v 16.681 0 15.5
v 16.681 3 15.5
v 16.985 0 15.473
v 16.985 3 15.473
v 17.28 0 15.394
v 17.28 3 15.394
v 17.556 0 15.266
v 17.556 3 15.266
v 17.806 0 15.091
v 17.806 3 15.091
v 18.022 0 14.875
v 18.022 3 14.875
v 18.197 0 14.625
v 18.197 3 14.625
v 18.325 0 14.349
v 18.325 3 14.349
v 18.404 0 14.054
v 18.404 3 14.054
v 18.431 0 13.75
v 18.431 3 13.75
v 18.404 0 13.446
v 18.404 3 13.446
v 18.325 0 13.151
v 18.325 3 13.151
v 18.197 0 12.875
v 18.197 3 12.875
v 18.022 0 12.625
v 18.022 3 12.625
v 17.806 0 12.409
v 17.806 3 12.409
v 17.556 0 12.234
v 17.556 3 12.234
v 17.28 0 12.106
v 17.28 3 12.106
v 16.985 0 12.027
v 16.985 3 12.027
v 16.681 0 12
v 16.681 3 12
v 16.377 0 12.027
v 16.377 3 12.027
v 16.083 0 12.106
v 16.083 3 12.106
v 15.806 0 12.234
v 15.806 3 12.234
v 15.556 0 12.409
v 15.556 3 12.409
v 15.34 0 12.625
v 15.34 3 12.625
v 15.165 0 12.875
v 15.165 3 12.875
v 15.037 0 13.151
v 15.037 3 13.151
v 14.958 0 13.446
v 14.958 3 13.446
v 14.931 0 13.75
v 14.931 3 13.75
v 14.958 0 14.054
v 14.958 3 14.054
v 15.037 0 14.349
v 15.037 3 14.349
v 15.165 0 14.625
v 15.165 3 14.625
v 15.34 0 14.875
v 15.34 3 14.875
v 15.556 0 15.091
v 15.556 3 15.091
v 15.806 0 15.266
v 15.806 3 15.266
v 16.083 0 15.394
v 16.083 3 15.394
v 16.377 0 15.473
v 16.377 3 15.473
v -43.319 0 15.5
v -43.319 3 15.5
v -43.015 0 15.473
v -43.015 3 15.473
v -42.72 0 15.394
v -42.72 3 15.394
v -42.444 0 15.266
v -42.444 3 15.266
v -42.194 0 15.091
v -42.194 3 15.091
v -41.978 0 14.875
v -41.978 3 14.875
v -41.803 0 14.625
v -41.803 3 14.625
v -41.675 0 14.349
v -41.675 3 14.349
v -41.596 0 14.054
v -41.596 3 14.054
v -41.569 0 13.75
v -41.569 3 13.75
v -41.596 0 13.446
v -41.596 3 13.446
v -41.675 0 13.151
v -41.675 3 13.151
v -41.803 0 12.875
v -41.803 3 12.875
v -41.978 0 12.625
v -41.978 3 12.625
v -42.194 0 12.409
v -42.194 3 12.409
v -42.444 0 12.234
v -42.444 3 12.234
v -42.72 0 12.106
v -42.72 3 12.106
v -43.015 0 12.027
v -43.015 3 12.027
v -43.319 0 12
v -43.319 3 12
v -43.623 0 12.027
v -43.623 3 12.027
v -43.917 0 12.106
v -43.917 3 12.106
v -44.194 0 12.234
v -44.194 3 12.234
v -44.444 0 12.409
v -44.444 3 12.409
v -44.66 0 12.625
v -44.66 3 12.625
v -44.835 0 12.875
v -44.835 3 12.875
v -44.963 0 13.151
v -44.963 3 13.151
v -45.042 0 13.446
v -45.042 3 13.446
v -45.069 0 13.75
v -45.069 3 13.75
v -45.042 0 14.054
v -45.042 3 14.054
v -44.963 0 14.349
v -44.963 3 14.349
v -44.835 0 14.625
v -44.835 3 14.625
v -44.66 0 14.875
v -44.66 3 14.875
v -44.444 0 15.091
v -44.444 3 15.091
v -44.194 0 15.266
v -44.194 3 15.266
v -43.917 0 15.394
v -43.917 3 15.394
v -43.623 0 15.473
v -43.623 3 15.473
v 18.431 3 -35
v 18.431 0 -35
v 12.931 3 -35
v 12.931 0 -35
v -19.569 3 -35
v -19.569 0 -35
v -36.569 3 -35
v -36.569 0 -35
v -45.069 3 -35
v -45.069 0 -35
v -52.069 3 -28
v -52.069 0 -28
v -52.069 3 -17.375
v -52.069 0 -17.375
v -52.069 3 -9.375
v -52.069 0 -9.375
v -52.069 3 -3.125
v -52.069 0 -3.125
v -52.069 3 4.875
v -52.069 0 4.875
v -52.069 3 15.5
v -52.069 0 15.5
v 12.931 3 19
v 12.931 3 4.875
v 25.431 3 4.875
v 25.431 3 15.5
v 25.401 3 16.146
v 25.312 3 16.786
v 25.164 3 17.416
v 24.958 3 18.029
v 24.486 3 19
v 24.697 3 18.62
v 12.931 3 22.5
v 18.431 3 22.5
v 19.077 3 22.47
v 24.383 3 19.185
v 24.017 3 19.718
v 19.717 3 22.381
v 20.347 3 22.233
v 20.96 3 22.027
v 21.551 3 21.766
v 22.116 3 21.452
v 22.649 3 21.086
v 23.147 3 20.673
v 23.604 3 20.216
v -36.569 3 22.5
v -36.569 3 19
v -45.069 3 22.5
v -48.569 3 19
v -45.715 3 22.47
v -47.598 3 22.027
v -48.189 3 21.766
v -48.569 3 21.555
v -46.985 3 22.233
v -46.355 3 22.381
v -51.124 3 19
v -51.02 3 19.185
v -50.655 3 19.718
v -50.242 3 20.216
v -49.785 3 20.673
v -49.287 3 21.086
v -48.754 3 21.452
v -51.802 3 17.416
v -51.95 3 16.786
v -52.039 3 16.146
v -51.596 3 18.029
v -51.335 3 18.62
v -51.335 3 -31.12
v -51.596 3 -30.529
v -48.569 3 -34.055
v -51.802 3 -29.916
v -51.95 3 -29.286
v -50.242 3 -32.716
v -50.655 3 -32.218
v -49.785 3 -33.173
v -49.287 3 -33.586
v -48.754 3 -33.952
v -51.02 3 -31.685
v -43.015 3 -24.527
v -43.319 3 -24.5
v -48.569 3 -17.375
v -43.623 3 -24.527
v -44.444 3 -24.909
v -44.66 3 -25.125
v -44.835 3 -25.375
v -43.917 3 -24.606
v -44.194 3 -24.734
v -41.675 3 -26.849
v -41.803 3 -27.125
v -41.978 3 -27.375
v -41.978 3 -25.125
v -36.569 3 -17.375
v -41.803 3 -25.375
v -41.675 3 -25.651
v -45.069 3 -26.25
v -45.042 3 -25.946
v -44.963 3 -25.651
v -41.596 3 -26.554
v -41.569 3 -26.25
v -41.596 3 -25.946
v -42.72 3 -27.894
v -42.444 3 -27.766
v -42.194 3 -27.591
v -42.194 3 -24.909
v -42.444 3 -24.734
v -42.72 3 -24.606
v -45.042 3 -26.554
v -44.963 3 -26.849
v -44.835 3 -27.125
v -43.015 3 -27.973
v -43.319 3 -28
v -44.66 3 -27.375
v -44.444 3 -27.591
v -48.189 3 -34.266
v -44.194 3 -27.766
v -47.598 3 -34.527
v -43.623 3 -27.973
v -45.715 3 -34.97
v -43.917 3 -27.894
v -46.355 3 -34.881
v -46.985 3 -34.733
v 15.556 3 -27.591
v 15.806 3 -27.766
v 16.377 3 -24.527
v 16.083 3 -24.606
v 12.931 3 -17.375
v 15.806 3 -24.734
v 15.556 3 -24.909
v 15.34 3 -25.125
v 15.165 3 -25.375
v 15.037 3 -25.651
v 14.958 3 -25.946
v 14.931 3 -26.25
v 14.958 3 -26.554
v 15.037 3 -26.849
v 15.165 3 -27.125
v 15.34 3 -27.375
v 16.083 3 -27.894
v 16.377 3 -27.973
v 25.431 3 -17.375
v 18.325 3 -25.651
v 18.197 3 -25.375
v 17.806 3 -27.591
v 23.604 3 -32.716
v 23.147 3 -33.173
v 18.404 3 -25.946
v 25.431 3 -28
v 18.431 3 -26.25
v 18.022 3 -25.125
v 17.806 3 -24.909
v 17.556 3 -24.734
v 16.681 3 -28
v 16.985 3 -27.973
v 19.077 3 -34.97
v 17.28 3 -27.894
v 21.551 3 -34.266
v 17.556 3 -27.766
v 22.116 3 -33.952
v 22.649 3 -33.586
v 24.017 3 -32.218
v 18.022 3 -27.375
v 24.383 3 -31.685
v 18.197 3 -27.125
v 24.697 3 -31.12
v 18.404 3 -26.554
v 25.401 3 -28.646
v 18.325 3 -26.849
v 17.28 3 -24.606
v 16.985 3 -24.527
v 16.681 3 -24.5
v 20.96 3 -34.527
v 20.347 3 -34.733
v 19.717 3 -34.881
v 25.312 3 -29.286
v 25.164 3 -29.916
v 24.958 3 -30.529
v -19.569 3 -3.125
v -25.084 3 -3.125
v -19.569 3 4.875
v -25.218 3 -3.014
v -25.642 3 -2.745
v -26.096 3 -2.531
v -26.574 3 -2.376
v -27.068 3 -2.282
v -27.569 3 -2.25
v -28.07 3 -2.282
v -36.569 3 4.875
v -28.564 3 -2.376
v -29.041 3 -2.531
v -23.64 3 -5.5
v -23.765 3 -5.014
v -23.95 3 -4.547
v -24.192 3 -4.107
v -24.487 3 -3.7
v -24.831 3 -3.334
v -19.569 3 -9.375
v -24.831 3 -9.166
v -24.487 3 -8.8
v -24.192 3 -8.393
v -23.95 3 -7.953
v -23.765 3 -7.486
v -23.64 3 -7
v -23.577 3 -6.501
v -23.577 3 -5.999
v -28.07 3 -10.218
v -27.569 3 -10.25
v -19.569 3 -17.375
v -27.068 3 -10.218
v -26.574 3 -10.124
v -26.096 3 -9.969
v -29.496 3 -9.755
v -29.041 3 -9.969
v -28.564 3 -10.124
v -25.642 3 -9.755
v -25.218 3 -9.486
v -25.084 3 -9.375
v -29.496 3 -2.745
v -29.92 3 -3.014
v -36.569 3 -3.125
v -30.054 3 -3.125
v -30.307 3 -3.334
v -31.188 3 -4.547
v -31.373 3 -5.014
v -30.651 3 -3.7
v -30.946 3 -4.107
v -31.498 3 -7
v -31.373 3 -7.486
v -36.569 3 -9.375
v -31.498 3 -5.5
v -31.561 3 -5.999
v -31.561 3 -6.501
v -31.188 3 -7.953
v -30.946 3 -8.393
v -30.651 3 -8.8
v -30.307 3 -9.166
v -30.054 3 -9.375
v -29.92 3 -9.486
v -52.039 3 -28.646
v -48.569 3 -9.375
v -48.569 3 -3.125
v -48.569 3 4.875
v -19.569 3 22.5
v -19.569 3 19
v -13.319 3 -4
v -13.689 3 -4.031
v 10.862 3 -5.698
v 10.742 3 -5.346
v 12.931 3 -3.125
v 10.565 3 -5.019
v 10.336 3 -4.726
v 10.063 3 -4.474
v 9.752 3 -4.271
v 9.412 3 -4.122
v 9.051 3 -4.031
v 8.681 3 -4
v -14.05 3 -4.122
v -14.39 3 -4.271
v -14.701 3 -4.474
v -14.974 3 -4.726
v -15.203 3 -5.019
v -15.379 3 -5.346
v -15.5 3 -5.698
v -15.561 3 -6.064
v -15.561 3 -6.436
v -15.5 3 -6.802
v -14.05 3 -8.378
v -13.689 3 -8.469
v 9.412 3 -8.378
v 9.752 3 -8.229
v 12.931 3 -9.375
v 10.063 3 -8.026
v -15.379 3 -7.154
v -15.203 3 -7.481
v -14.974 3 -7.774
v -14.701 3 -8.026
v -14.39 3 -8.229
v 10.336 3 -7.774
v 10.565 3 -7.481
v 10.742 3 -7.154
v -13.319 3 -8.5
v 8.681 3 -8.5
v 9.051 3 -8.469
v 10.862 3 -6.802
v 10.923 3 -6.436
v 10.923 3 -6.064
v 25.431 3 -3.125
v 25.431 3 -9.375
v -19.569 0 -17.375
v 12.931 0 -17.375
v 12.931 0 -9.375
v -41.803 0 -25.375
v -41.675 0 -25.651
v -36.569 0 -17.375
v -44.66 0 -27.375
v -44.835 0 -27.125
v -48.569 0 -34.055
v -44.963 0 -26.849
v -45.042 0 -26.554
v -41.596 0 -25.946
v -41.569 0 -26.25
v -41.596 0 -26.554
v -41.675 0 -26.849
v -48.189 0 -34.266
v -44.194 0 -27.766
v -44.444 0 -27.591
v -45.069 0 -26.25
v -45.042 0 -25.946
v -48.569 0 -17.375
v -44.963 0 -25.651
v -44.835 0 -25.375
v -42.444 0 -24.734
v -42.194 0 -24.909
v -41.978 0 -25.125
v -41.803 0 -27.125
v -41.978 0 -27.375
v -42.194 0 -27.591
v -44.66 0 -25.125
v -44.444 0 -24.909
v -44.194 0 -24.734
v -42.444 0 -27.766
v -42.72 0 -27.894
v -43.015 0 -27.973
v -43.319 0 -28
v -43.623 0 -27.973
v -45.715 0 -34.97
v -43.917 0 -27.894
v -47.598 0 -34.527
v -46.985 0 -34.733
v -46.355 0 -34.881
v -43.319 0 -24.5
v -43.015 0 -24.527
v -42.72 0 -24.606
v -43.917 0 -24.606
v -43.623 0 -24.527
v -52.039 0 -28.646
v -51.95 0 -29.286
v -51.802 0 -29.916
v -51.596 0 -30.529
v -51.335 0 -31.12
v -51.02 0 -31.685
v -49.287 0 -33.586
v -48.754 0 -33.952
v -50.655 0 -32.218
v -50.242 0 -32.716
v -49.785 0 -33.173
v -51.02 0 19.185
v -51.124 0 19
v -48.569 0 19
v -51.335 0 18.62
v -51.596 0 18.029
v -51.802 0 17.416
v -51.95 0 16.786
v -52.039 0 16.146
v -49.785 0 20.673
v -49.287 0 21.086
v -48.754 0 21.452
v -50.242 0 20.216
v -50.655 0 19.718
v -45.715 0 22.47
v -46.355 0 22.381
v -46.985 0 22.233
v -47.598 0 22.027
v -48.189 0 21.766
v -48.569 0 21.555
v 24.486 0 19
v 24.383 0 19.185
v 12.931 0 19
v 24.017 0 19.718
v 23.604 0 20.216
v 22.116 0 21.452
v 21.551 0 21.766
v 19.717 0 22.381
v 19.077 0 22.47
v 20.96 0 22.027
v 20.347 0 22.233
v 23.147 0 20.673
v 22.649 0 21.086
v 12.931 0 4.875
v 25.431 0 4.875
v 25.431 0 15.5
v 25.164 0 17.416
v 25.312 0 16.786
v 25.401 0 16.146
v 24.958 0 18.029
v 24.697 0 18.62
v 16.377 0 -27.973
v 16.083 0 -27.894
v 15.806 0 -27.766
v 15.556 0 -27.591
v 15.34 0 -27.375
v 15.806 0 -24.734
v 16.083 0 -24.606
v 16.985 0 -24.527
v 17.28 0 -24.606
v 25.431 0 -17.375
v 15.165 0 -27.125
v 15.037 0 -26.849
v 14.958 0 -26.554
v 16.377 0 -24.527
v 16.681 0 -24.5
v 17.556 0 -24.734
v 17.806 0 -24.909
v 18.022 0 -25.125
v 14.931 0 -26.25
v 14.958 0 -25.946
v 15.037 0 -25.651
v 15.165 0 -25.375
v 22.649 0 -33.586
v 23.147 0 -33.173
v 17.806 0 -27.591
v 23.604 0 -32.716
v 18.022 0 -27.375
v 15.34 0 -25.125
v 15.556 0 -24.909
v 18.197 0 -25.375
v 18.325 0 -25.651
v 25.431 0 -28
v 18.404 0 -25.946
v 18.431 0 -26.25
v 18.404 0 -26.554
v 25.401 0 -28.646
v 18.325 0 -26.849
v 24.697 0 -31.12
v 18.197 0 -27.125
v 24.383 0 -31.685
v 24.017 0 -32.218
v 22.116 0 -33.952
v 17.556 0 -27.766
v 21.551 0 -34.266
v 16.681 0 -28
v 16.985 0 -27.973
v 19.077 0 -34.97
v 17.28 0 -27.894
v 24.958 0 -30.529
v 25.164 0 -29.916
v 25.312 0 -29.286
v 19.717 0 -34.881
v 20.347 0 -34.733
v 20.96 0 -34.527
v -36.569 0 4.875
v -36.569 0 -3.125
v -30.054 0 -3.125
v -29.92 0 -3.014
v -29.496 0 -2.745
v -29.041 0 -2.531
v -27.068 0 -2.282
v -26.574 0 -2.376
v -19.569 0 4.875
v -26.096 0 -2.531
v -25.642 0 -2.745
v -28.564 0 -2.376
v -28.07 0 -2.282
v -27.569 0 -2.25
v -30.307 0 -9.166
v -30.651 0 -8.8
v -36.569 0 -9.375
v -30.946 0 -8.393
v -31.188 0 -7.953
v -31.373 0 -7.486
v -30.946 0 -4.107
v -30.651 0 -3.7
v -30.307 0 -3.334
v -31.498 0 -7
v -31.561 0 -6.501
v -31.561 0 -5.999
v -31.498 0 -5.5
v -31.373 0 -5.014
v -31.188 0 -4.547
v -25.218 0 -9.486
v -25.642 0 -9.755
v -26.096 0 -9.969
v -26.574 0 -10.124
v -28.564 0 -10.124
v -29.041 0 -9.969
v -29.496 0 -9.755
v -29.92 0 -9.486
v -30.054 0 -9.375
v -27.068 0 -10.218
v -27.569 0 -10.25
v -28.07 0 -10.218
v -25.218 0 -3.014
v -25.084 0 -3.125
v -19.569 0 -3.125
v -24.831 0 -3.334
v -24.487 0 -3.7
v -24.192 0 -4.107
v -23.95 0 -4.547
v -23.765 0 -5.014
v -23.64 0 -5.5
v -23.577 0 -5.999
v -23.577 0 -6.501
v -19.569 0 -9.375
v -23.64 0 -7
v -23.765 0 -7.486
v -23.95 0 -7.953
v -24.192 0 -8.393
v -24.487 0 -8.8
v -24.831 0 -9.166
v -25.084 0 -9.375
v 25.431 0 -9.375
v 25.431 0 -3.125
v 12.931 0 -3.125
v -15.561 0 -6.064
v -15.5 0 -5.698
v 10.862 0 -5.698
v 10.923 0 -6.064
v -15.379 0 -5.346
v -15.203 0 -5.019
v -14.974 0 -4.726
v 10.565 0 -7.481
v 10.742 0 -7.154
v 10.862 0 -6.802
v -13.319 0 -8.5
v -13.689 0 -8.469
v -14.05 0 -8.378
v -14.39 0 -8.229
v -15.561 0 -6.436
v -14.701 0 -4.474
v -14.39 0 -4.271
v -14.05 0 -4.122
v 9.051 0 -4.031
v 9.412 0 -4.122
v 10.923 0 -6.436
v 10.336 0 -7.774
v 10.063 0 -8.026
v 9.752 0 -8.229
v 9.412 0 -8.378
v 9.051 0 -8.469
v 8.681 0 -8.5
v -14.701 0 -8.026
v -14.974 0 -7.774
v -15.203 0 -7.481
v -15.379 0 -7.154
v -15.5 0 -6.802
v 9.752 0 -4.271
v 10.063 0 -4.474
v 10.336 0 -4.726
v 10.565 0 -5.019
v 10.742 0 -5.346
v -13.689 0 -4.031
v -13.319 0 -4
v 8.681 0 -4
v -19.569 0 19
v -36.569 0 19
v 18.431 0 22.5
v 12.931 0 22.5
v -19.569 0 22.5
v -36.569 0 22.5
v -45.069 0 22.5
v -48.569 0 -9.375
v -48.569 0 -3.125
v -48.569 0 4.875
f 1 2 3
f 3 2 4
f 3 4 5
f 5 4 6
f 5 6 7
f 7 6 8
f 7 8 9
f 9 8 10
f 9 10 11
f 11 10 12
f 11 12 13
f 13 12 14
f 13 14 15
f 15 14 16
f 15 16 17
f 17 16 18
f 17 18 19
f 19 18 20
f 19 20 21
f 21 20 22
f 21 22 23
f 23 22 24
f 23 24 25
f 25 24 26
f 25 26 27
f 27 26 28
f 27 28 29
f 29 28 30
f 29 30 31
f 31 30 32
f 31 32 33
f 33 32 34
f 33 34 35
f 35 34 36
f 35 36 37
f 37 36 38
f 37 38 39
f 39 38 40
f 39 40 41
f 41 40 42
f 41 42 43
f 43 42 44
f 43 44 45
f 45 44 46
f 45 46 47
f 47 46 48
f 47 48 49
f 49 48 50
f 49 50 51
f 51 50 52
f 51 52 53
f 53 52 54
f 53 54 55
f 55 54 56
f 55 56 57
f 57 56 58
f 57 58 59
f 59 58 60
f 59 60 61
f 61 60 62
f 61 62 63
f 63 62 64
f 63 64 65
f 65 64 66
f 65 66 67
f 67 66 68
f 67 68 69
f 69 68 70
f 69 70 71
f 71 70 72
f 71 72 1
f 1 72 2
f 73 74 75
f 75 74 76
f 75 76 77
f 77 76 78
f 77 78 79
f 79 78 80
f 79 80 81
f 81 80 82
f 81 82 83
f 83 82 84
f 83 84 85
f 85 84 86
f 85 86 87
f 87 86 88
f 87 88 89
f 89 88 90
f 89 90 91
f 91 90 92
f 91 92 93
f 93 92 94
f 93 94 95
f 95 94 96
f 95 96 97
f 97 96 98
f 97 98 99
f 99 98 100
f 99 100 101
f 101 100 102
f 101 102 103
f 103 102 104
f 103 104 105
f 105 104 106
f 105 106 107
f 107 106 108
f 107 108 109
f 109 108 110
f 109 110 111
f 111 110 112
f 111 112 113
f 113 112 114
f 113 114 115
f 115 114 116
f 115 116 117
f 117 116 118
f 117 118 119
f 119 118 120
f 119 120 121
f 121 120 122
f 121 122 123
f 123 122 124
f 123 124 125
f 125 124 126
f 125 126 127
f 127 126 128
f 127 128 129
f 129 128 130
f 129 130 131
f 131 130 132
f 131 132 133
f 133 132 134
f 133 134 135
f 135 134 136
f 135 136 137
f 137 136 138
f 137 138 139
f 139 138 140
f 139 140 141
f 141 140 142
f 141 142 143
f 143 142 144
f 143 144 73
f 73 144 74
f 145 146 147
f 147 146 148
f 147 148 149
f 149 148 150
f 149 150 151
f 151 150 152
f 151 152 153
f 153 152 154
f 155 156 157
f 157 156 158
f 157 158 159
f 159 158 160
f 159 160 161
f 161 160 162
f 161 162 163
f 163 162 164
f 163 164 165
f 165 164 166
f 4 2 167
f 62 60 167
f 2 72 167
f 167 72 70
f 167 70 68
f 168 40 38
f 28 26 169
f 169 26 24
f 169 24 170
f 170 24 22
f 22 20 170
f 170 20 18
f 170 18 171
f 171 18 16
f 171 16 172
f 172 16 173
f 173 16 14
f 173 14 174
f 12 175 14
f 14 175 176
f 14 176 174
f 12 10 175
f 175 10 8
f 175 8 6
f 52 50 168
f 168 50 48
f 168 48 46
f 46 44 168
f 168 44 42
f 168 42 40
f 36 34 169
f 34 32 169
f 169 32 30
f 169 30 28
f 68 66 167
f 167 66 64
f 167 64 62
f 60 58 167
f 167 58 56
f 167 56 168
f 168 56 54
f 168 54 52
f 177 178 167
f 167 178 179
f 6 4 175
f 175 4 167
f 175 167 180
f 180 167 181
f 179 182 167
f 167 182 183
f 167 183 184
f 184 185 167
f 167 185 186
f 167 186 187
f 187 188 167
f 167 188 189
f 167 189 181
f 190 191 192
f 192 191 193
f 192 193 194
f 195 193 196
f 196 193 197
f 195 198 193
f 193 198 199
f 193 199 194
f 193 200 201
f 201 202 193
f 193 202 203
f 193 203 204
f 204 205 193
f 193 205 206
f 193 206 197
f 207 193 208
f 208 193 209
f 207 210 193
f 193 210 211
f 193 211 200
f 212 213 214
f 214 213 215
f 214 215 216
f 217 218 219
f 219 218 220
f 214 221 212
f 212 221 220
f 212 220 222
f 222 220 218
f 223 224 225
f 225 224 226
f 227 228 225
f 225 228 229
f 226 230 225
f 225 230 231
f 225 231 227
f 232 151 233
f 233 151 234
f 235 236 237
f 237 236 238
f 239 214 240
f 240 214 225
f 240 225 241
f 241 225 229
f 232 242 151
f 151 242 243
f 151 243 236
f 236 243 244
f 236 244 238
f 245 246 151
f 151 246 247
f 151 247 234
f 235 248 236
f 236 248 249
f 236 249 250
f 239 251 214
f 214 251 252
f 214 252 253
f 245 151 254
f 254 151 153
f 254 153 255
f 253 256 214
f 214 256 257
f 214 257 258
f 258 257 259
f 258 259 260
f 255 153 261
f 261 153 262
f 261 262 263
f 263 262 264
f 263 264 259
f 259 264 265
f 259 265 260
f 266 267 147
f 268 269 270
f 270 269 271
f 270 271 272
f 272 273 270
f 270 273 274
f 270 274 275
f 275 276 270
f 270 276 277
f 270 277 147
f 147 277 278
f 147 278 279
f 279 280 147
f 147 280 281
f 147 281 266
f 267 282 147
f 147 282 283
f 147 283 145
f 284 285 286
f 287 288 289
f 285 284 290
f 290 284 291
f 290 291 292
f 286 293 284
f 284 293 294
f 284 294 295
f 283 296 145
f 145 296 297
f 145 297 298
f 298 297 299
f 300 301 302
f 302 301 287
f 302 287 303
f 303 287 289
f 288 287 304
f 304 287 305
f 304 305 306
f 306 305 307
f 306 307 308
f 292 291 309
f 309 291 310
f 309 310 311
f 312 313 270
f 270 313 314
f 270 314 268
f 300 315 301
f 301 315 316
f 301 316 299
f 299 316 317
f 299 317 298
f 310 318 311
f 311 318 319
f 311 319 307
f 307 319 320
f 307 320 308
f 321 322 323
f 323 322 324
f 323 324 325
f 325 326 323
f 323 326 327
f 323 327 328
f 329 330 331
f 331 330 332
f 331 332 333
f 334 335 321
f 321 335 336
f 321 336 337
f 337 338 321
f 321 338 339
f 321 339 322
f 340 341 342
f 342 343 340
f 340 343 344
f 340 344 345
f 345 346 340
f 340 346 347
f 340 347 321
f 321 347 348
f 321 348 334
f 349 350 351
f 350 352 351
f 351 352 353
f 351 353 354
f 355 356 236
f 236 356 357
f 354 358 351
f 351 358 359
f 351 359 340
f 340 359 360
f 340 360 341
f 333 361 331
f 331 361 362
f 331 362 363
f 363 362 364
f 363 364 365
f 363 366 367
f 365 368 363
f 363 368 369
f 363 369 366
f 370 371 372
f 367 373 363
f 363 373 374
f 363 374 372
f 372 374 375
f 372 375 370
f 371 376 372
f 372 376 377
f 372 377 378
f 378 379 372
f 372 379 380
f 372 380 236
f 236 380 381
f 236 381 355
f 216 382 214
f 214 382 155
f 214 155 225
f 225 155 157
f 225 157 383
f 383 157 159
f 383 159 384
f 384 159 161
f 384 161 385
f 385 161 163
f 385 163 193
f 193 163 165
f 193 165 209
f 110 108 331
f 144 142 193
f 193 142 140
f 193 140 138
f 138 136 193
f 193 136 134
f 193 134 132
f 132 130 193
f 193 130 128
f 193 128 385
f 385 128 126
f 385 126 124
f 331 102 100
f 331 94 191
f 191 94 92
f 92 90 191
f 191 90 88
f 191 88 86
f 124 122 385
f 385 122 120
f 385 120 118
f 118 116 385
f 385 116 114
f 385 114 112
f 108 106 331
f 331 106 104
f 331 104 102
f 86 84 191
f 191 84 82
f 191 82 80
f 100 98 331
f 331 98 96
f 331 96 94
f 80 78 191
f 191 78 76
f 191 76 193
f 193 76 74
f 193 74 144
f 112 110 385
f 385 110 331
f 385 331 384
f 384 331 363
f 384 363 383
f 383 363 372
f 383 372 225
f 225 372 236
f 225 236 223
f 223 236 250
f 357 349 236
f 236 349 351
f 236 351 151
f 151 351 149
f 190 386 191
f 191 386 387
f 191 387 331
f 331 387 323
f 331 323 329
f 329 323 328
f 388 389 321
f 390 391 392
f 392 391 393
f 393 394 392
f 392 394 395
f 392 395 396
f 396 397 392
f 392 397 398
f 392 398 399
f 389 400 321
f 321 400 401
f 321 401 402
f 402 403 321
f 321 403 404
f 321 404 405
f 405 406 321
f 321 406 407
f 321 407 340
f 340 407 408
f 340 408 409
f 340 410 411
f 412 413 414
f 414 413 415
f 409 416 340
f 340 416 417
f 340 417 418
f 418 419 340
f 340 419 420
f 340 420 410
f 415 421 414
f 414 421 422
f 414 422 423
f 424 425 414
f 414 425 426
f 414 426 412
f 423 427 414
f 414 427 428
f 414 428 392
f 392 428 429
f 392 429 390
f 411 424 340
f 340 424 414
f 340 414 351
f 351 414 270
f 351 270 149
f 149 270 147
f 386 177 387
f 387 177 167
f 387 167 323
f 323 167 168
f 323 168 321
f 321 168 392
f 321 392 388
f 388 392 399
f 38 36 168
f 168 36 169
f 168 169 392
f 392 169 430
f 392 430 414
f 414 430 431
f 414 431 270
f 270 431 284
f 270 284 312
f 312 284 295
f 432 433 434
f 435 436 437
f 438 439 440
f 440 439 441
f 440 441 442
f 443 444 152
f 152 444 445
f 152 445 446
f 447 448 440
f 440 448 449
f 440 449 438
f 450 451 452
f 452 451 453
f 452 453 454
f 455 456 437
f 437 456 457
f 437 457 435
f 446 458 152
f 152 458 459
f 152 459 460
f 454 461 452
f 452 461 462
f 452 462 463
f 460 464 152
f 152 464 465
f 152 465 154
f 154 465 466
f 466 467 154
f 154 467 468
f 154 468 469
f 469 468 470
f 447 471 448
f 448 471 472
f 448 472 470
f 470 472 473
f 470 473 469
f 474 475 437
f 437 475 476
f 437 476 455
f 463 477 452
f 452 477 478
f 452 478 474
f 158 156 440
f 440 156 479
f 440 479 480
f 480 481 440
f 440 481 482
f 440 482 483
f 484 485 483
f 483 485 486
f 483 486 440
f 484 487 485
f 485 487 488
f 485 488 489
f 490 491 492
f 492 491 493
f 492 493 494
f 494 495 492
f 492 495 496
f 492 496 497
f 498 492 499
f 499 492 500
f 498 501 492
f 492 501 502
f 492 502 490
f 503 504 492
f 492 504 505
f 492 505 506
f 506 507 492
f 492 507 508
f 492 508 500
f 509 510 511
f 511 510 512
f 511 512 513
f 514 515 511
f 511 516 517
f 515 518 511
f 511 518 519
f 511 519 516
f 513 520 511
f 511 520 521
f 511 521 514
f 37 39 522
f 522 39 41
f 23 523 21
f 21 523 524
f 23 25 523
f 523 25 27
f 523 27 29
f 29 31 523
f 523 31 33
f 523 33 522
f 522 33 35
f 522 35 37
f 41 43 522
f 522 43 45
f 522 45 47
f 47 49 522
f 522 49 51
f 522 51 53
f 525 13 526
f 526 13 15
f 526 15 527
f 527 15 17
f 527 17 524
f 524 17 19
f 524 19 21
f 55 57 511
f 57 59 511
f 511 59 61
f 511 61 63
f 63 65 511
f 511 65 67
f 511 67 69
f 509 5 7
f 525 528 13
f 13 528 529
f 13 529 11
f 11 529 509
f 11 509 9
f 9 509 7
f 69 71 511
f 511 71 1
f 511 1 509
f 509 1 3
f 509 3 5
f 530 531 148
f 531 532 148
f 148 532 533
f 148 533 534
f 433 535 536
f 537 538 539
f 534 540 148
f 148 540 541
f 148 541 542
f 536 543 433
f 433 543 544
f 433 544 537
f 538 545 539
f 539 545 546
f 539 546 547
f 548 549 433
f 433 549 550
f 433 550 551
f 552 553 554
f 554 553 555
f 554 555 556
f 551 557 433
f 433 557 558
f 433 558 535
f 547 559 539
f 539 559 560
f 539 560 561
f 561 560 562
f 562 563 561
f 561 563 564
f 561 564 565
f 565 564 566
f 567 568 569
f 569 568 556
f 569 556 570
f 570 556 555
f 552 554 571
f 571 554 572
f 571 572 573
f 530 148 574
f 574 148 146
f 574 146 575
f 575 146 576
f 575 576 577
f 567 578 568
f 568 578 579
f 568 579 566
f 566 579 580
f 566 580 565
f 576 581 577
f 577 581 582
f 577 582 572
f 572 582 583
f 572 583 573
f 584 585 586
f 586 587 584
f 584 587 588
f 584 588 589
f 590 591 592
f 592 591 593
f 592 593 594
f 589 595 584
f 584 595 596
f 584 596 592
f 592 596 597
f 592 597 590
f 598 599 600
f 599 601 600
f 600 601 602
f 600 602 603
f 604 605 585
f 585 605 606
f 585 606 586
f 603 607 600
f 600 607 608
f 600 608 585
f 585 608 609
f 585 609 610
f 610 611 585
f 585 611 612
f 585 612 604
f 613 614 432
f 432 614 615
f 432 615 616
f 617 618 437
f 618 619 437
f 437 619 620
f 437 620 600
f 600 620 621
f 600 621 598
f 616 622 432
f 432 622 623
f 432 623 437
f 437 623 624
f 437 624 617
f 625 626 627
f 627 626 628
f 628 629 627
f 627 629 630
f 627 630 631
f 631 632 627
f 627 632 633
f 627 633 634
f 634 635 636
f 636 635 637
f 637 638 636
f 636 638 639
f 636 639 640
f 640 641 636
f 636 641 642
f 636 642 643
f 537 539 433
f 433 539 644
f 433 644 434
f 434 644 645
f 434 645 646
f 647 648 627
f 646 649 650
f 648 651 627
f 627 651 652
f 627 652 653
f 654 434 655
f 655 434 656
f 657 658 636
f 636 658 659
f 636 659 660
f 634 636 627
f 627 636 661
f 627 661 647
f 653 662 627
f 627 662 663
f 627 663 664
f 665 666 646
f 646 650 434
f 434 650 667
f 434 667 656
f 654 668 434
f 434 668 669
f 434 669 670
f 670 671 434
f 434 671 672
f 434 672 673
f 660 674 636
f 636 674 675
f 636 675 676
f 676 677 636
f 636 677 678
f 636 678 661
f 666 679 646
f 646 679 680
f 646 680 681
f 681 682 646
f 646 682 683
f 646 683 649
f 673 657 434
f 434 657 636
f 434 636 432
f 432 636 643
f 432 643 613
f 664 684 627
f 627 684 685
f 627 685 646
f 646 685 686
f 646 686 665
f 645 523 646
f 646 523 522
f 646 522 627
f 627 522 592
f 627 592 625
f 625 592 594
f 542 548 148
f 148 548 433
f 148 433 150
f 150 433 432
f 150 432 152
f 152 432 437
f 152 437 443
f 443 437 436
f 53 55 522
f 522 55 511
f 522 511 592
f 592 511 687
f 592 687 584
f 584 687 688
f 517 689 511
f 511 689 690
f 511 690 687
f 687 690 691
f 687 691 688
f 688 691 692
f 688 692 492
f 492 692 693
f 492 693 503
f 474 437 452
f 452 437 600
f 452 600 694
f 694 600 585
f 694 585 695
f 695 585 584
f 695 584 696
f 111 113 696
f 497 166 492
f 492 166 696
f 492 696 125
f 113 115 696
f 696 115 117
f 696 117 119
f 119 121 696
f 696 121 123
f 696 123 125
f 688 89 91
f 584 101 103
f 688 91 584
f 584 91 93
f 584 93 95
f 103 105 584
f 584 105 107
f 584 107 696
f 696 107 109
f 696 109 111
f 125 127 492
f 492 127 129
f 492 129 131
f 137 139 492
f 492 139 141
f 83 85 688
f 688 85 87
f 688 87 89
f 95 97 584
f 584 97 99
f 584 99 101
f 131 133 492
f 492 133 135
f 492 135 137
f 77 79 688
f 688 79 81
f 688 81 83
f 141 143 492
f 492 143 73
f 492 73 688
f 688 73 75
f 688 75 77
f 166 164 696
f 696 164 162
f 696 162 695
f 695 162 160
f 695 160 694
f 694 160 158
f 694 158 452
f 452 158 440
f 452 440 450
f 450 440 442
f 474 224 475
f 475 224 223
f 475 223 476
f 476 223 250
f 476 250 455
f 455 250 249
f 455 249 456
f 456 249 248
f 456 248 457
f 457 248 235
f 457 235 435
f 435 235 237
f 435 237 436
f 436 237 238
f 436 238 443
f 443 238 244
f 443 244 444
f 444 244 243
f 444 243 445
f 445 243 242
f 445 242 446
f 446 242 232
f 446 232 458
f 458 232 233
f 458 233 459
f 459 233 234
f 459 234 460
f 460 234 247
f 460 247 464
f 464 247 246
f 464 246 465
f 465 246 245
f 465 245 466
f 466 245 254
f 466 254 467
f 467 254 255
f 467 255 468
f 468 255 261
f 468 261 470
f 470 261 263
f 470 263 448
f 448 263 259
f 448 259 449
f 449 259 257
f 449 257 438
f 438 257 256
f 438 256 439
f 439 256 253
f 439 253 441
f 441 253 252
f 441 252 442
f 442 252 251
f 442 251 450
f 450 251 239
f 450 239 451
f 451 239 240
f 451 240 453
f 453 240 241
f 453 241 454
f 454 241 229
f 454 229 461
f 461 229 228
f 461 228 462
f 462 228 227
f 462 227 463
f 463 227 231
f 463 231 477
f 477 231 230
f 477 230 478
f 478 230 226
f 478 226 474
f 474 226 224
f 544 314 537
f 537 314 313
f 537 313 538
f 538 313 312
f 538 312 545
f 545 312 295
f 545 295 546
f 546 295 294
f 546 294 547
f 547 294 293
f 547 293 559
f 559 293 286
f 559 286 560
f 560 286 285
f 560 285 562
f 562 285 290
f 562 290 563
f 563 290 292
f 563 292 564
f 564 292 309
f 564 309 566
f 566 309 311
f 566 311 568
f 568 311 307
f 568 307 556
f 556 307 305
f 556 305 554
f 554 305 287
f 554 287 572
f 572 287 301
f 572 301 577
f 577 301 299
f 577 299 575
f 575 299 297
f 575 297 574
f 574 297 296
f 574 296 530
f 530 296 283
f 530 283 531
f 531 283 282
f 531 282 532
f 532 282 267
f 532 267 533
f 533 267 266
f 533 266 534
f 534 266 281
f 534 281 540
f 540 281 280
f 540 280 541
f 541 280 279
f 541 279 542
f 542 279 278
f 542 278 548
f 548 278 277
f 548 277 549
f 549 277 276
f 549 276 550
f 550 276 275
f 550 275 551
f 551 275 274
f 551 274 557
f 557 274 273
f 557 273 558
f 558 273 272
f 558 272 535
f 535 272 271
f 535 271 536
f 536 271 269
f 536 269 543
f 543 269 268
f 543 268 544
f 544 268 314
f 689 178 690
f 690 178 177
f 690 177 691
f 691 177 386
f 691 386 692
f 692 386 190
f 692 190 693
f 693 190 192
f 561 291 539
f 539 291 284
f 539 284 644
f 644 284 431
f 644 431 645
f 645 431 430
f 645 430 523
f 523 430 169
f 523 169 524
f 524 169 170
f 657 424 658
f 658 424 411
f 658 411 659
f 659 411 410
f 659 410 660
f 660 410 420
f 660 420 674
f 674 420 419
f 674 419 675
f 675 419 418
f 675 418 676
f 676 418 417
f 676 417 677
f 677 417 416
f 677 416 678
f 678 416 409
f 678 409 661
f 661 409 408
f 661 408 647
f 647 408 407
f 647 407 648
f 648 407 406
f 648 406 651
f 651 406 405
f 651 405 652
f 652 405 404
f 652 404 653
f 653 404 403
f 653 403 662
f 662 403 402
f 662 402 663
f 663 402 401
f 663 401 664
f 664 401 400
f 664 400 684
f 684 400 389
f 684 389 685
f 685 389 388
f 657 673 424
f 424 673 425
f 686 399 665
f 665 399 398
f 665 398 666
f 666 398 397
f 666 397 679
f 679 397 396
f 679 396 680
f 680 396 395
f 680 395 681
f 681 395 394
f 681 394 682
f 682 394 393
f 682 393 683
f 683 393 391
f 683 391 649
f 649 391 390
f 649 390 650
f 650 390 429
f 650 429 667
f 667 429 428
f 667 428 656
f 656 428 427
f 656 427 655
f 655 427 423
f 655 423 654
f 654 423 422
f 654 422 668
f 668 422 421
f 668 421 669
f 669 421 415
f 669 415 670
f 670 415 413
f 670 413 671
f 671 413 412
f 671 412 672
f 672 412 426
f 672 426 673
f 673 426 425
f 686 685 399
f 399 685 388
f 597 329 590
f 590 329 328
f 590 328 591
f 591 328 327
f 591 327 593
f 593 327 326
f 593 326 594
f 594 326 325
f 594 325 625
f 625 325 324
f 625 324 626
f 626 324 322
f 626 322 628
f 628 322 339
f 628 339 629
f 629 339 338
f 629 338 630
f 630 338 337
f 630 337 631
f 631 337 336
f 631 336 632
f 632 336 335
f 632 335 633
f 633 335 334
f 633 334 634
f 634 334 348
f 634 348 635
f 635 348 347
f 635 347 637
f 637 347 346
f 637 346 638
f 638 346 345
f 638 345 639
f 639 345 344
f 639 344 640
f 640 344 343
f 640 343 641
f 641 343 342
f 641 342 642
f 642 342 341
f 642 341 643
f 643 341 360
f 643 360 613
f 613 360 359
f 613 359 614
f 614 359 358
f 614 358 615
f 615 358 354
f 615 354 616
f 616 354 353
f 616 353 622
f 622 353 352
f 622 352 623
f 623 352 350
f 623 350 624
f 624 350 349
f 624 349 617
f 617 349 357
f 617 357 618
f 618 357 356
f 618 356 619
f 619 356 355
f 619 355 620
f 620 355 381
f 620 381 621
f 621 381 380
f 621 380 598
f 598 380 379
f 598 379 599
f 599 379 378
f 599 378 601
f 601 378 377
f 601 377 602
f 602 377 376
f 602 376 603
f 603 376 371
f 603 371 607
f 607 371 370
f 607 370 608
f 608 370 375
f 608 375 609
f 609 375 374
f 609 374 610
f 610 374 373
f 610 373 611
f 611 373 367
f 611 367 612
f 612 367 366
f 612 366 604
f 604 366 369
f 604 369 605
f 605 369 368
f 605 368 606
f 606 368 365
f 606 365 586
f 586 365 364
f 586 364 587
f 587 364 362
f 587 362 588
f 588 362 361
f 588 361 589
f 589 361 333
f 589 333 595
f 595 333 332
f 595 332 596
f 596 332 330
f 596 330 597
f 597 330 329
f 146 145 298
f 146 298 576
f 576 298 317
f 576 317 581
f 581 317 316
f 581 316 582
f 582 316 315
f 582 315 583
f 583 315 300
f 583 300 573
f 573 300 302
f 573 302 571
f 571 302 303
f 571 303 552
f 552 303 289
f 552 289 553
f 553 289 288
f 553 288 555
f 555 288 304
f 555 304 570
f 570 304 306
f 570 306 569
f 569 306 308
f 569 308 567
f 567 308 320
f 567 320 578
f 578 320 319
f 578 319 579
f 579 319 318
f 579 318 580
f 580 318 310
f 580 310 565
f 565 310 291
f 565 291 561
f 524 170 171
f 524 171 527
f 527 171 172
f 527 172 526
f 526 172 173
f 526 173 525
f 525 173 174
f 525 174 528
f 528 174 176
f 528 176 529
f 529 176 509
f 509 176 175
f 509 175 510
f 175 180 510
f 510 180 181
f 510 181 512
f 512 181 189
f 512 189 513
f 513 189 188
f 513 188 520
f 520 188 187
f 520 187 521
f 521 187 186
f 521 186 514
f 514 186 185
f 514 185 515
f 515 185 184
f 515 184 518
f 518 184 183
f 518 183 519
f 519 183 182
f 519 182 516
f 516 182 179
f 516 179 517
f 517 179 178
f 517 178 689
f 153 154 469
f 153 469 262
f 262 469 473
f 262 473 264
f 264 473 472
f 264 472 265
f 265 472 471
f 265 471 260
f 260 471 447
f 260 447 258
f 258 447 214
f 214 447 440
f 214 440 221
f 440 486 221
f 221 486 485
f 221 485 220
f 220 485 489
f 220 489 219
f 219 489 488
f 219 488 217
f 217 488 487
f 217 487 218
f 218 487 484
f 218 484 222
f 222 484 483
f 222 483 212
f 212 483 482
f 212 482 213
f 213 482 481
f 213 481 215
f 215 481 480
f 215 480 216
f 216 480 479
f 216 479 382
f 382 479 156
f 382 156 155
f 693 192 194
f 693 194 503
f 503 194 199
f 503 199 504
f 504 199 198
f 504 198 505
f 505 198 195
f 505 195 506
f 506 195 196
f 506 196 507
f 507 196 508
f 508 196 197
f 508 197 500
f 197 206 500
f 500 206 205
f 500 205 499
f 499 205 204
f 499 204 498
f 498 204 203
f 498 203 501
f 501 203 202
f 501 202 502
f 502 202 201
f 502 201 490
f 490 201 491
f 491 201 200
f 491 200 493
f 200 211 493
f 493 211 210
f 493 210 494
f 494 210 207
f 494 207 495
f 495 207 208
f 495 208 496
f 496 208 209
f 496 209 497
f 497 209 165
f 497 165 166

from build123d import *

# Parameters (mm, degrees)
SKETCH_1_W                  = 104.137931034
SKETCH_1_H                  = 70
EXTRUDE_1_DEPTH             = 3
SKETCH_2_R                  = 1.75
CUT_EXTRUDE_1_DEPTH         = 10
PATTERN_LINEAR_1_COUNT      = 2
PATTERN_LINEAR_1_PITCH      = 60
PATTERN_LINEAR_1_COUNT_DIR2 = 2
PATTERN_LINEAR_1_PITCH_DIR2 = 40
CUT_EXTRUDE_2_DEPTH         = 4
SKETCH_4_R                  = 4
CUT_EXTRUDE_3_DEPTH         = 4
FILLET_1_R                  = 7


with BuildPart() as part:
    # Эскиз1 → Бобышка-Вытянуть1 (new body)
    with BuildSketch(Plane(origin=(0, 0, 0), x_dir=(1, 0, 0), z_dir=(0, 1, 0))):
        Rectangle(SKETCH_1_W, SKETCH_1_H)
    extrude(amount=EXTRUDE_1_DEPTH)

    # Эскиз2 → Вырез-Вытянуть1 (cut)
    with BuildSketch(Plane(origin=(0, 3, 0), x_dir=(1, 0, 0), z_dir=(0, 1, 0))):
        with Locations((-43.318965517, 26.25)):
            Circle(SKETCH_2_R)
    cut_extrude_1 = extrude(amount=-CUT_EXTRUDE_1_DEPTH, mode=Mode.SUBTRACT)

    # Линейный массив1: Cut-Extrude 1 2 × 2
    with Locations(*[(i * PATTERN_LINEAR_1_PITCH, 0, j * PATTERN_LINEAR_1_PITCH_DIR2) for i in range(PATTERN_LINEAR_1_COUNT) for j in range(PATTERN_LINEAR_1_COUNT_DIR2) if (i, j) != (0, 0)]):
        add(cut_extrude_1, mode=Mode.SUBTRACT)

    # Эскиз3 → Вырез-Вытянуть2 (cut, through all)
    with BuildSketch(Plane(origin=(0, 3, 0), x_dir=(1, 0, 0), z_dir=(0, 1, 0))):
        Polygon((-52.068965517, -22.5), (25.431034483, -22.5), (25.431034483, 35), (52.068965517, 35), (52.068965517, -35), (-52.068965517, -35), align=None)
    extrude(amount=-CUT_EXTRUDE_2_DEPTH, mode=Mode.SUBTRACT)

    # Эскиз4 → Вырез-Вытянуть3 (cut, through all)
    with BuildSketch(Plane(origin=(0, 3, 0), x_dir=(1, 0, 0), z_dir=(0, 1, 0))):
        with Locations((-27.568965517, 6.25)):
            Circle(SKETCH_4_R)
        with BuildLine():
            Line((-13.318965517, 8.5), (8.681034483, 8.5))
            ThreePointArc((8.681034483, 8.5), (10.931034483, 6.25), (8.681034483, 4))
            Line((8.681034483, 4), (-13.318965517, 4))
            ThreePointArc((-13.318965517, 4), (-15.568965517, 6.25), (-13.318965517, 8.5))
        make_face()
    extrude(amount=-CUT_EXTRUDE_3_DEPTH, mode=Mode.SUBTRACT)

    # Скругление1
    fillet_1_edges = [part.edges().sort_by_distance(p)[0] for p in [
        (-52.068965517, 1.5, 22.5),
        (25.431034483, 1.5, 22.5),
        (25.431034483, 1.5, -35),
        (-52.068965517, 1.5, -35),
    ]]
    fillet(fillet_1_edges, radius=FILLET_1_R)


solid = part.part
